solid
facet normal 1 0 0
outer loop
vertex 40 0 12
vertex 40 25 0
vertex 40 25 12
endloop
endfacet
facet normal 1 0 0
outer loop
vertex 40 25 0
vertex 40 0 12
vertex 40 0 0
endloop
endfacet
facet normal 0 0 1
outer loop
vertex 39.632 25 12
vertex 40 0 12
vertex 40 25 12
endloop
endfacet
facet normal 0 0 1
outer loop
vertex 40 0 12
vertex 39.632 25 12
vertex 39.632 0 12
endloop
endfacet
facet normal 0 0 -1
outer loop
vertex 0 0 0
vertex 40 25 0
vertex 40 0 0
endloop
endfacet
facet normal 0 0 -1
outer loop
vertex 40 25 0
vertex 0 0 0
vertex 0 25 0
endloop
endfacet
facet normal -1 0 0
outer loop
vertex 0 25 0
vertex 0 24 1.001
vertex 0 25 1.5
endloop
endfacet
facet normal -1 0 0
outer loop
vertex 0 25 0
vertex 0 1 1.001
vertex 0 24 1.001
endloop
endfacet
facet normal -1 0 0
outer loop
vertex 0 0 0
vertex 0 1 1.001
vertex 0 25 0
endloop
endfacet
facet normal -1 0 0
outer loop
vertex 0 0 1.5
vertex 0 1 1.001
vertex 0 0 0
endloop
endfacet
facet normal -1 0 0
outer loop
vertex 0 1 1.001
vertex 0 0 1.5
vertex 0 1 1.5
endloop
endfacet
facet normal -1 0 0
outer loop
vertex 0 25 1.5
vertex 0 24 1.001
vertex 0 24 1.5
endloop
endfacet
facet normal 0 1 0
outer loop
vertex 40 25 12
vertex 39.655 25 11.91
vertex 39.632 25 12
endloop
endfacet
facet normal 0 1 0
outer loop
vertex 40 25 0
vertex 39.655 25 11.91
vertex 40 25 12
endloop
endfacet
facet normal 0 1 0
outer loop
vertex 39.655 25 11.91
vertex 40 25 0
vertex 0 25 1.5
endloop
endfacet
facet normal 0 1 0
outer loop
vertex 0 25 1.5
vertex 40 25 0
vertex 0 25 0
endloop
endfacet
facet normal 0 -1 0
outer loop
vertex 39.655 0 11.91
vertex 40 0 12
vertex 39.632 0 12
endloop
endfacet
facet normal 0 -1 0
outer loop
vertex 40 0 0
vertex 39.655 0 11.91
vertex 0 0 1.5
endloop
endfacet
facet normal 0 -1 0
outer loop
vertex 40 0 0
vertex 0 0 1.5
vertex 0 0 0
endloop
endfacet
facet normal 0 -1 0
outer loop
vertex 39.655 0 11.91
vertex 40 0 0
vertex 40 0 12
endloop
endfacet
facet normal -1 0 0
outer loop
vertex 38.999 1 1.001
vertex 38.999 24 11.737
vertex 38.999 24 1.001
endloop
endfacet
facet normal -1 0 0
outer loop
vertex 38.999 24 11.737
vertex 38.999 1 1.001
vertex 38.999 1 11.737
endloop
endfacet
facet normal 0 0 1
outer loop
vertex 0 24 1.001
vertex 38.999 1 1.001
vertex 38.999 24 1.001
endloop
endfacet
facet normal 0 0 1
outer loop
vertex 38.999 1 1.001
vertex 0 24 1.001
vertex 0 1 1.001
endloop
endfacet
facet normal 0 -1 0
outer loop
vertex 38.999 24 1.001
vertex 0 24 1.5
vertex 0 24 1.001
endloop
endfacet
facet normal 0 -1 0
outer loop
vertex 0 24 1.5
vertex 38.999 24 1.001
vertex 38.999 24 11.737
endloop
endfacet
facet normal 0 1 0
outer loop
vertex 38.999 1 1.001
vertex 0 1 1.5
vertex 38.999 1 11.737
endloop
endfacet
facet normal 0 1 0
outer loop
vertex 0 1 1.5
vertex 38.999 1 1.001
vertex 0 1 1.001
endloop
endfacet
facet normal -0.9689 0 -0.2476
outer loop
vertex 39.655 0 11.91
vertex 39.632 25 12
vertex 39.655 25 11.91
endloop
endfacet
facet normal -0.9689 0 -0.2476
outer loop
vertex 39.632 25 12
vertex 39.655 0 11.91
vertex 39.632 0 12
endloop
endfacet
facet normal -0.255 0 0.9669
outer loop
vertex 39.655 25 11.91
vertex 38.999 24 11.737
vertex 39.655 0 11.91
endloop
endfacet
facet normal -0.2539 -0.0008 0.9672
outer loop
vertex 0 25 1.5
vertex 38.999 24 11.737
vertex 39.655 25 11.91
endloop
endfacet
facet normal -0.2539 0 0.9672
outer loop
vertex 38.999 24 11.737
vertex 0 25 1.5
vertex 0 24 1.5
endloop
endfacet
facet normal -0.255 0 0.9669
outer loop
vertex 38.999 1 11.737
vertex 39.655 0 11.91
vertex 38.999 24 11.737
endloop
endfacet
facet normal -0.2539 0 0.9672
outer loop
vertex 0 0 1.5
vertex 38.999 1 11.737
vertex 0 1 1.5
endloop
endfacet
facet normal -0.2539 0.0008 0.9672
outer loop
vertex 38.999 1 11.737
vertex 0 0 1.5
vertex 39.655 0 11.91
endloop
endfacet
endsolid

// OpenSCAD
epsilon = 0.001;

module soilpot() {
  dims = [40, 25, 12];
  wall = 1;
  sensor_z = 1.5;

  inner_dims = dims - wall*[1, 2, 1];

  difference() {
    cube(dims);
    translate([-epsilon, wall, wall+epsilon]) cube(inner_dims);
    angle = atan((dims[2]-sensor_z)/dims[0]);
    translate([-epsilon, -epsilon, sensor_z]) rotate([0, -angle, 0]) cube(dims + [1,1,1]);
  }
}

soilpot();
